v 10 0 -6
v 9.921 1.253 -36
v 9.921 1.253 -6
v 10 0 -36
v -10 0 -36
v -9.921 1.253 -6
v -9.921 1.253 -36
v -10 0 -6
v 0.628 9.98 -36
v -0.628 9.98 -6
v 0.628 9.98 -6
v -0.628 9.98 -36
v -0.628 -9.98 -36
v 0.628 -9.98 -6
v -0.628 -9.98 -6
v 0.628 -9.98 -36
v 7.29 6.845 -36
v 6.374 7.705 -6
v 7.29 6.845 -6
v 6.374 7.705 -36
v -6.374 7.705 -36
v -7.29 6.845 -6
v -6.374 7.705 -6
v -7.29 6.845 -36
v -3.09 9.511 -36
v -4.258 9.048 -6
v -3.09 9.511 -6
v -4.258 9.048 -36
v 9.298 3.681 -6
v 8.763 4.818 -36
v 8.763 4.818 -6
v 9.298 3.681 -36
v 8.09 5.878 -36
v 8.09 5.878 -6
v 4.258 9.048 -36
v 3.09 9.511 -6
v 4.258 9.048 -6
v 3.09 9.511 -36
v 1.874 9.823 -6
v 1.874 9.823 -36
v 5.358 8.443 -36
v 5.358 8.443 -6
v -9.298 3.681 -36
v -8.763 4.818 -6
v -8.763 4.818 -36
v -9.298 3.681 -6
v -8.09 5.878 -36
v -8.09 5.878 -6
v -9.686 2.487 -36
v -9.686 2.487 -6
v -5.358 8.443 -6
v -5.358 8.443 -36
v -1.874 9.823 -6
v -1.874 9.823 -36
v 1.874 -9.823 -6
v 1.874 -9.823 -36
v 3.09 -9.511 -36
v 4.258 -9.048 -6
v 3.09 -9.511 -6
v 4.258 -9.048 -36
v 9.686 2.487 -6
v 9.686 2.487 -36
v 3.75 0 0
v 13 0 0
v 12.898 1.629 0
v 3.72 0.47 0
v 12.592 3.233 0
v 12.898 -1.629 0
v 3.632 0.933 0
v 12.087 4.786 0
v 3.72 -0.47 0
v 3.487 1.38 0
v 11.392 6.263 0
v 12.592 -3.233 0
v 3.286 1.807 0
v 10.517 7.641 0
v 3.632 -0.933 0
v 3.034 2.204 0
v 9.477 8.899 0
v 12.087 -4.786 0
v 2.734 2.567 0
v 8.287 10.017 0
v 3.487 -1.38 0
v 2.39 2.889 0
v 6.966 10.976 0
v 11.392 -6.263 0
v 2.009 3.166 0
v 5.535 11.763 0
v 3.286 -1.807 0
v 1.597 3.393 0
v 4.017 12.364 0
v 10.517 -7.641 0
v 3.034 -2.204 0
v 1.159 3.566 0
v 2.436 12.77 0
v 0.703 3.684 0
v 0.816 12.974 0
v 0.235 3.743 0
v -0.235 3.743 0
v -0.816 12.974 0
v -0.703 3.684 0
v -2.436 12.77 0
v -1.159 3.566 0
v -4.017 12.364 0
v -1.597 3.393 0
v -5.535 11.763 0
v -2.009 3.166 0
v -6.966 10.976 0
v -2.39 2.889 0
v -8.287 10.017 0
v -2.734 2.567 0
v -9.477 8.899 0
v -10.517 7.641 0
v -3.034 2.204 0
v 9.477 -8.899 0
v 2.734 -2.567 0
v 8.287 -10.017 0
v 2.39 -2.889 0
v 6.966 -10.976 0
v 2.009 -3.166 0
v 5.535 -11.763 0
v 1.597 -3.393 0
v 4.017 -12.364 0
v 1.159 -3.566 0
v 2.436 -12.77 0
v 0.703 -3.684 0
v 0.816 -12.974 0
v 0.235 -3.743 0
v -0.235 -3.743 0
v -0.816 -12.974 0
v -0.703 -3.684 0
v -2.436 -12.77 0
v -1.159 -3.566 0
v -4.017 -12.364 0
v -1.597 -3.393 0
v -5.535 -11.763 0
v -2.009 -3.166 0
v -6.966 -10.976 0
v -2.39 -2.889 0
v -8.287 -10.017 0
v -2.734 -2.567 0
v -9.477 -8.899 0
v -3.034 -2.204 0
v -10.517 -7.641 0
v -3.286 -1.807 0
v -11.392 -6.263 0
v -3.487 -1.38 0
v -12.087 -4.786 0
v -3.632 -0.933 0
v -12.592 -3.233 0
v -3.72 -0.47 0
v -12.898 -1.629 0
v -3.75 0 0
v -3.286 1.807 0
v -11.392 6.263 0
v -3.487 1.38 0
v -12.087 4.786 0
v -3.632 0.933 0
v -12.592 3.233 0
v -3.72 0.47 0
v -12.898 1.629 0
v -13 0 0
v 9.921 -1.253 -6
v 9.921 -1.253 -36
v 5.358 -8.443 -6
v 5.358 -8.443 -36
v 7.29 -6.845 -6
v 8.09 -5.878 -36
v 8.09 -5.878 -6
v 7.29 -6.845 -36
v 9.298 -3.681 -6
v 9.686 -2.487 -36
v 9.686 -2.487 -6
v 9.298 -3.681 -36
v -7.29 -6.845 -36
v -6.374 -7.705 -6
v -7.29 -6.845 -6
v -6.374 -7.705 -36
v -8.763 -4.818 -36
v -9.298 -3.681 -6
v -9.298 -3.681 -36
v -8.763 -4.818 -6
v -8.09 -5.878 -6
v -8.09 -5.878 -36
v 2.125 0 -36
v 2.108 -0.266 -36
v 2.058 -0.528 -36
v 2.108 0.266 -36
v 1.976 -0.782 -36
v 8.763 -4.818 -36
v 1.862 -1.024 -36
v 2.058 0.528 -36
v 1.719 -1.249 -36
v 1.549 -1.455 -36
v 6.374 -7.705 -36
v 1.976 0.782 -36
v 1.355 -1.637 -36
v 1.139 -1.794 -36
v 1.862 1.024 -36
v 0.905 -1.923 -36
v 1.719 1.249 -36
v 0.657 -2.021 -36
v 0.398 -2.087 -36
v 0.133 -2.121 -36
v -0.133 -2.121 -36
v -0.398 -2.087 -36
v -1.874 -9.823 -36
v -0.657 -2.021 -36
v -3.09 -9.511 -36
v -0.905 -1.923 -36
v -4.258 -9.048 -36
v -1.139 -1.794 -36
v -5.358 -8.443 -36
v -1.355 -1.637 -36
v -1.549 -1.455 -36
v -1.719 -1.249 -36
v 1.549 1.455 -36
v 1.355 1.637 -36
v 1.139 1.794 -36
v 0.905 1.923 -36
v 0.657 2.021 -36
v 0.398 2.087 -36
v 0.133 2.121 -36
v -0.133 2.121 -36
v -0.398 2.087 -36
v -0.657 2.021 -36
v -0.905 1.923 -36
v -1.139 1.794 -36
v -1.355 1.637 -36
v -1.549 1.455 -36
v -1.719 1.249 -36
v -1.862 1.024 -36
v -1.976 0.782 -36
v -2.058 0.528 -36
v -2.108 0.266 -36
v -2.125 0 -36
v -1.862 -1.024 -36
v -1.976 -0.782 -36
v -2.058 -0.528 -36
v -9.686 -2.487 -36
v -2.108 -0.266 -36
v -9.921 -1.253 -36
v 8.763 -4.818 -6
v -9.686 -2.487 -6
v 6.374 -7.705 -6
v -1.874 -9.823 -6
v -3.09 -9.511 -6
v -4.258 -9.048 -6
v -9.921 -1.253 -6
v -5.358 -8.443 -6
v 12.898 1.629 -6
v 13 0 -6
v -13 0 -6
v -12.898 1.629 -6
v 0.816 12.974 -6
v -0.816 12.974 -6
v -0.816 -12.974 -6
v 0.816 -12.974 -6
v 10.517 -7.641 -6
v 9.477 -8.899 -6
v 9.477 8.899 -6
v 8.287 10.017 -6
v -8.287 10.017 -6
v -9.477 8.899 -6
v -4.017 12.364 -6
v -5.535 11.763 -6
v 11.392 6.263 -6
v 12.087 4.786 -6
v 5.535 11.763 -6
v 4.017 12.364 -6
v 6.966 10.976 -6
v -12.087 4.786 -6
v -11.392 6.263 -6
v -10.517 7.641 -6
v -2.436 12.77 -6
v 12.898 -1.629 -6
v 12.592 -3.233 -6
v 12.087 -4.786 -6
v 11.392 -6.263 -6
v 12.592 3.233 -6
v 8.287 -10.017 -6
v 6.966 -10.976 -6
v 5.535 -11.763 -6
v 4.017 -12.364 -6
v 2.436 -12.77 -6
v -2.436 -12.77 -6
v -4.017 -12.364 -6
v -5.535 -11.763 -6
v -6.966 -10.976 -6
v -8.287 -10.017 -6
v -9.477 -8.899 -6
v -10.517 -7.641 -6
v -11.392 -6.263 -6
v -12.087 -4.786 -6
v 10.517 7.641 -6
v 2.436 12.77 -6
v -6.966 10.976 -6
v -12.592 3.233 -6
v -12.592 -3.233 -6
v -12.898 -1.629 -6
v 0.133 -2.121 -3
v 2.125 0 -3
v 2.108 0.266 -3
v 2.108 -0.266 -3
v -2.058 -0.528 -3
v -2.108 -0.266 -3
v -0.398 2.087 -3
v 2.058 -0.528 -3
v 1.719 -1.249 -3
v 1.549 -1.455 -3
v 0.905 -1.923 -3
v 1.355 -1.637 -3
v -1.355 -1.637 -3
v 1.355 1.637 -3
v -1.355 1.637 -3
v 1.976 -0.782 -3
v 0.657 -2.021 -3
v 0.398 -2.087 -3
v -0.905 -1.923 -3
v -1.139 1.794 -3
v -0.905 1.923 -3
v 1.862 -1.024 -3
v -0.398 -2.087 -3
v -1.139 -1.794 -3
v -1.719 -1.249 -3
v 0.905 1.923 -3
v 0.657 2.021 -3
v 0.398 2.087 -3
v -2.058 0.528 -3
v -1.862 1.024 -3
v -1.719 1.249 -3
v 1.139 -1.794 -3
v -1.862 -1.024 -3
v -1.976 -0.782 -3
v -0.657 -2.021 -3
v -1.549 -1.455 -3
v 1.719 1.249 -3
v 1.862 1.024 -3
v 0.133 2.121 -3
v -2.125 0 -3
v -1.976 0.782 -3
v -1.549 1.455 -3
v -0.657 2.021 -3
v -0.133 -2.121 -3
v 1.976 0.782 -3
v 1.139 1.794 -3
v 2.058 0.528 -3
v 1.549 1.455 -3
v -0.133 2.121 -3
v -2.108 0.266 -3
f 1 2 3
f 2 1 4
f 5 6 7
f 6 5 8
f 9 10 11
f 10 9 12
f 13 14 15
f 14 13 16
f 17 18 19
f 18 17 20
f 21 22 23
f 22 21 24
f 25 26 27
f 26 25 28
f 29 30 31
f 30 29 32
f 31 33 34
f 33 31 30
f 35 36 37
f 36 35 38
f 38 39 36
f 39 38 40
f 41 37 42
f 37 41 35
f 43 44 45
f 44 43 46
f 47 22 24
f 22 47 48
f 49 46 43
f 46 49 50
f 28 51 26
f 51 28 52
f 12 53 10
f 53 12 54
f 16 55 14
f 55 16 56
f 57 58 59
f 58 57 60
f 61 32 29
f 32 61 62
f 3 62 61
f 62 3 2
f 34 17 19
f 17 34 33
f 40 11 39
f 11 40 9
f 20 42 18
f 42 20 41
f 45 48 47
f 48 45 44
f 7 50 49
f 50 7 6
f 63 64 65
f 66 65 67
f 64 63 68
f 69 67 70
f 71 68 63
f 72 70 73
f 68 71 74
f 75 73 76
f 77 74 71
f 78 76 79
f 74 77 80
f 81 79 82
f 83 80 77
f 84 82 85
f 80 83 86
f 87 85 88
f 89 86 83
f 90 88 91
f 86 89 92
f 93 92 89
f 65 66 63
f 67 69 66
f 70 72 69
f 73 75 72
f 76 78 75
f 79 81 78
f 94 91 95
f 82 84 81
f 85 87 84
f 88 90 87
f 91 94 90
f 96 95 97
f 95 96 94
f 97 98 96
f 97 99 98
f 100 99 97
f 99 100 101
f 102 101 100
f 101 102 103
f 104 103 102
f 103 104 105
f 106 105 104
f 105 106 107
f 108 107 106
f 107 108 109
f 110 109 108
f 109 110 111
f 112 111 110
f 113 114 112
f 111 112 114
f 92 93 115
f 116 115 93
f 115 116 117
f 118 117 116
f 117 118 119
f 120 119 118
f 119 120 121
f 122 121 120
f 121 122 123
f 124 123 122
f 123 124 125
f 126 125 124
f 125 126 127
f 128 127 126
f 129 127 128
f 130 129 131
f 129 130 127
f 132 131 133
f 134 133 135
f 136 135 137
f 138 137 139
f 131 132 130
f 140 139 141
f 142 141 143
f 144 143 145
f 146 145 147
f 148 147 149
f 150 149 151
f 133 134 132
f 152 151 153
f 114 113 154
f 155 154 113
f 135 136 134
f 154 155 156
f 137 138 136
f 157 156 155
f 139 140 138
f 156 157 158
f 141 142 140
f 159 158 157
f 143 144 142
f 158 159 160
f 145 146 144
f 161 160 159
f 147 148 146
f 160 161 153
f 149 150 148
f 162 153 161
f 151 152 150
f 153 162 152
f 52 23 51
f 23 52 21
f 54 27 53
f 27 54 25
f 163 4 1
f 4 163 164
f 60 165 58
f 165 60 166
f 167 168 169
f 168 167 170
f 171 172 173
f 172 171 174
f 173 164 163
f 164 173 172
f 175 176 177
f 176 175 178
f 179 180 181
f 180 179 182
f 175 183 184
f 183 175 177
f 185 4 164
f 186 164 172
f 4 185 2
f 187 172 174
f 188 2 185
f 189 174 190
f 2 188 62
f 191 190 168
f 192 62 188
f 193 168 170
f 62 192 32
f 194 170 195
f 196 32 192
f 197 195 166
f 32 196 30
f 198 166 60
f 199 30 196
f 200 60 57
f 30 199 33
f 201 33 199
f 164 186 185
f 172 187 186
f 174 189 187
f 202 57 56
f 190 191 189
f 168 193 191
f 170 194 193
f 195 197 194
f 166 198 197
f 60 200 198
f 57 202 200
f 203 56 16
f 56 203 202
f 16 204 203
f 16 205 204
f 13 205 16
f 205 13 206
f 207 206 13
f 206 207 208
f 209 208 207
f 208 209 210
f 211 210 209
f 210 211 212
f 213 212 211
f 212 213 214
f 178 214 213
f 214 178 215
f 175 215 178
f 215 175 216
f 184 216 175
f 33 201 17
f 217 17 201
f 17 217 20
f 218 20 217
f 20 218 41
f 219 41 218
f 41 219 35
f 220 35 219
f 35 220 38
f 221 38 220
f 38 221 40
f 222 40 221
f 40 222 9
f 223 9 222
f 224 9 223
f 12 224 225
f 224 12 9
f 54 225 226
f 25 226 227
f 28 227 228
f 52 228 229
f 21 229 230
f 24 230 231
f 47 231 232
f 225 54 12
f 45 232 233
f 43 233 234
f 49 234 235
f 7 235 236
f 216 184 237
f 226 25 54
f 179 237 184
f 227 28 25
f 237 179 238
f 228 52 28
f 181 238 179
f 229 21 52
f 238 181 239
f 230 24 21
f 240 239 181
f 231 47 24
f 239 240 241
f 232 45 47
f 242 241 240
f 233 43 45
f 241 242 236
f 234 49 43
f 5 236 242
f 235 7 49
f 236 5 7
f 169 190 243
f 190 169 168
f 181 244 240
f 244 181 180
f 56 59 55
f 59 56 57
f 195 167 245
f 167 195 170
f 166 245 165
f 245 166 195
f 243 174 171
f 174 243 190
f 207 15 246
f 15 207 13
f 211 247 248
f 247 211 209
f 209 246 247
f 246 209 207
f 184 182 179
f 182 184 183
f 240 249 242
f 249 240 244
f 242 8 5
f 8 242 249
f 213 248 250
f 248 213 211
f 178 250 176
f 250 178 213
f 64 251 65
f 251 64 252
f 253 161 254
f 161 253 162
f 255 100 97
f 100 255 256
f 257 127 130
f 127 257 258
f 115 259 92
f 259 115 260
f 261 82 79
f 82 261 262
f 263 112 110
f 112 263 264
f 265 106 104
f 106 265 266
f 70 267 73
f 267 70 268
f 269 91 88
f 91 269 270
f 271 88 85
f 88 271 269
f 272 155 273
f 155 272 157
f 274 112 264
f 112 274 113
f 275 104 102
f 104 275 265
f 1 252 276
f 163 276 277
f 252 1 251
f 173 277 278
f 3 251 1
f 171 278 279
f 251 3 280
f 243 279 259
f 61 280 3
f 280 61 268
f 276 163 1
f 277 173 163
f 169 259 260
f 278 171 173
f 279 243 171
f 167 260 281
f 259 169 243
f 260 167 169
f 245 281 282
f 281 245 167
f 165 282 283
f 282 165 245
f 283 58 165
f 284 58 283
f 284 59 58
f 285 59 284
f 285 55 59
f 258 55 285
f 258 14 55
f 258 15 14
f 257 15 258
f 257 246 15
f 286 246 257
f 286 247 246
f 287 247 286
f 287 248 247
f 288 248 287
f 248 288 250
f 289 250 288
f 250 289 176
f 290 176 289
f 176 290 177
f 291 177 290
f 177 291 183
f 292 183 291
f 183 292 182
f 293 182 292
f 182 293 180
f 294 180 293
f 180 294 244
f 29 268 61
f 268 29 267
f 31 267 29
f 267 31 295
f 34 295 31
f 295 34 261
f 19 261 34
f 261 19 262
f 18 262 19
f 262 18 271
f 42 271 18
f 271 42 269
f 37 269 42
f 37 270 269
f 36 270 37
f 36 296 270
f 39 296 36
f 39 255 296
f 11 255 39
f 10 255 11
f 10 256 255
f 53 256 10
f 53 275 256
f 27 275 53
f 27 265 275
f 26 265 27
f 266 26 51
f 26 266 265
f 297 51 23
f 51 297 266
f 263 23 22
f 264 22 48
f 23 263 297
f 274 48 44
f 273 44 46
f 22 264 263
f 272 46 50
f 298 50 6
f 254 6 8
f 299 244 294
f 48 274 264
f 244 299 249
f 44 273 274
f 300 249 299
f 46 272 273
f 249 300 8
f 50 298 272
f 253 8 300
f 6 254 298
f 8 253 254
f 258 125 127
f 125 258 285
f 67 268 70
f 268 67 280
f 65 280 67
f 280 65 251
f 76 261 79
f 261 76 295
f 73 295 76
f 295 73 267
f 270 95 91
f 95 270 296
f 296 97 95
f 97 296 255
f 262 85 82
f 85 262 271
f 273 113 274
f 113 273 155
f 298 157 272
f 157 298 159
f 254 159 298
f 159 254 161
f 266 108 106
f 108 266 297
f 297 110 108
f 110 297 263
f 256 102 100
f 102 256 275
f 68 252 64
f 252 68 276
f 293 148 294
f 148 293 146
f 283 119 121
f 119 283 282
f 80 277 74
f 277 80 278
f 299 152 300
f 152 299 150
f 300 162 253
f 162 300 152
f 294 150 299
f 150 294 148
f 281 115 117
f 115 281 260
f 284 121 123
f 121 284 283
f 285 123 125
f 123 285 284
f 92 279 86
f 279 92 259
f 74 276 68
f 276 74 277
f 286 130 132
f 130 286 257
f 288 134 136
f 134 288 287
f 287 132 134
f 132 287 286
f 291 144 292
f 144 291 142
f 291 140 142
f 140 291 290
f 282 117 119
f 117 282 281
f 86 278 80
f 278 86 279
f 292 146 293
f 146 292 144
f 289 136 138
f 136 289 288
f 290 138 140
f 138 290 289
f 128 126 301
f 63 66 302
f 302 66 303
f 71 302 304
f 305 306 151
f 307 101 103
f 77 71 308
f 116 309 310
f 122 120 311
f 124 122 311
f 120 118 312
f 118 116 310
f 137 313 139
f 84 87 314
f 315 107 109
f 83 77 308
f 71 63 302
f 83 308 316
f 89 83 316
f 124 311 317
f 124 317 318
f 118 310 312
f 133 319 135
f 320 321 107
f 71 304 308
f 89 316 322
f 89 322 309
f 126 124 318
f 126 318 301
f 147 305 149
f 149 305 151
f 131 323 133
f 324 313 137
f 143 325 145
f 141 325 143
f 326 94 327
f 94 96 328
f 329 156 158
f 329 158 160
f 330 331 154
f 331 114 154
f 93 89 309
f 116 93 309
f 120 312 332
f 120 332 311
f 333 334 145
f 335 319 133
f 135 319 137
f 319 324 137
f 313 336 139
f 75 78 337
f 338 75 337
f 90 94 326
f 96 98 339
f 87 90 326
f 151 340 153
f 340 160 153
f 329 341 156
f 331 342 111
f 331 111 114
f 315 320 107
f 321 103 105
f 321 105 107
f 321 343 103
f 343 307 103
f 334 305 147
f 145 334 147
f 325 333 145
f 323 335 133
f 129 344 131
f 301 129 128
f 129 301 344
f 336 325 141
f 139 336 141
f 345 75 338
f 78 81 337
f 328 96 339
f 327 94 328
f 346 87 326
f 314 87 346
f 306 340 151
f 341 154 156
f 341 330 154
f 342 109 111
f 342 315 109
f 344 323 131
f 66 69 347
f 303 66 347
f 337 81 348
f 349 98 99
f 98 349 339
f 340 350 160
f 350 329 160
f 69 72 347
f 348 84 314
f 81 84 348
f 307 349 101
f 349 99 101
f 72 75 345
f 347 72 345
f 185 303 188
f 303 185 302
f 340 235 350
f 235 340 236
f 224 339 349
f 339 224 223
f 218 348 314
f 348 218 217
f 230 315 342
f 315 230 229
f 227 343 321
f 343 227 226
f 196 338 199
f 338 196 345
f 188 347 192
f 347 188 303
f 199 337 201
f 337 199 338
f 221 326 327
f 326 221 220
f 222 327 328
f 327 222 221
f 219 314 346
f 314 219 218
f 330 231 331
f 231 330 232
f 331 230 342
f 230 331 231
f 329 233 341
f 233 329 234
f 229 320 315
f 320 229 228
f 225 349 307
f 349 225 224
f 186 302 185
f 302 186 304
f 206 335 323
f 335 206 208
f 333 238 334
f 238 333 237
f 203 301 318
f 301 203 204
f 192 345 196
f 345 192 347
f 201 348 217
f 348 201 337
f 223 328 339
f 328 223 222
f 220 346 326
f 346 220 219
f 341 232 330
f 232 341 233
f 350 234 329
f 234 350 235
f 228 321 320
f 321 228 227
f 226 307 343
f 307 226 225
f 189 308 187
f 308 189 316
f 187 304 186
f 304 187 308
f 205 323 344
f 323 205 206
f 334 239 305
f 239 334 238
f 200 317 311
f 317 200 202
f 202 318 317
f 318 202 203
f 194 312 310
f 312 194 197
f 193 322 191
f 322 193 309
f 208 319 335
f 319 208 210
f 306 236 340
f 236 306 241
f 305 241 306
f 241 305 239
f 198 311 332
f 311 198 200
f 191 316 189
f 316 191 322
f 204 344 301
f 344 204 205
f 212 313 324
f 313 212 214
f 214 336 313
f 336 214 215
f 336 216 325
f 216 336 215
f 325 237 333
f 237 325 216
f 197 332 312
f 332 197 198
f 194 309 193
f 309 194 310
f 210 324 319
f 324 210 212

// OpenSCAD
$fn = 50;


difference() {
	union() {
		translate(v = [0, 0, -36.0000000000]) {
			cylinder(h = 36, r = 10.0000000000);
		}
		translate(v = [0, 0, -6.0000000000]) {
			cylinder(h = 6, r = 13.0000000000);
		}
	}
	union() {
		translate(v = [0, 0, 0]) {
			rotate(a = [0, 0, 0]) {
				difference() {
					union() {
						#translate(v = [0, 0, -36.0000000000]) {
							cylinder(h = 36, r = 2.0000000000);
						}
						#translate(v = [0, 0, -3]) {
							cylinder(h = 3, r = 10.0000000000, r1 = 2.1250000000, r2 = 3.7500000000);
						}
						#translate(v = [0, 0, -36.0000000000]) {
							cylinder(h = 36, r = 2.1250000000);
						}
						#translate(v = [0, 0, -36.0000000000]) {
							cylinder(h = 36, r = 2.0000000000);
						}
					}
					union();
				}
			}
		}
	}
}
